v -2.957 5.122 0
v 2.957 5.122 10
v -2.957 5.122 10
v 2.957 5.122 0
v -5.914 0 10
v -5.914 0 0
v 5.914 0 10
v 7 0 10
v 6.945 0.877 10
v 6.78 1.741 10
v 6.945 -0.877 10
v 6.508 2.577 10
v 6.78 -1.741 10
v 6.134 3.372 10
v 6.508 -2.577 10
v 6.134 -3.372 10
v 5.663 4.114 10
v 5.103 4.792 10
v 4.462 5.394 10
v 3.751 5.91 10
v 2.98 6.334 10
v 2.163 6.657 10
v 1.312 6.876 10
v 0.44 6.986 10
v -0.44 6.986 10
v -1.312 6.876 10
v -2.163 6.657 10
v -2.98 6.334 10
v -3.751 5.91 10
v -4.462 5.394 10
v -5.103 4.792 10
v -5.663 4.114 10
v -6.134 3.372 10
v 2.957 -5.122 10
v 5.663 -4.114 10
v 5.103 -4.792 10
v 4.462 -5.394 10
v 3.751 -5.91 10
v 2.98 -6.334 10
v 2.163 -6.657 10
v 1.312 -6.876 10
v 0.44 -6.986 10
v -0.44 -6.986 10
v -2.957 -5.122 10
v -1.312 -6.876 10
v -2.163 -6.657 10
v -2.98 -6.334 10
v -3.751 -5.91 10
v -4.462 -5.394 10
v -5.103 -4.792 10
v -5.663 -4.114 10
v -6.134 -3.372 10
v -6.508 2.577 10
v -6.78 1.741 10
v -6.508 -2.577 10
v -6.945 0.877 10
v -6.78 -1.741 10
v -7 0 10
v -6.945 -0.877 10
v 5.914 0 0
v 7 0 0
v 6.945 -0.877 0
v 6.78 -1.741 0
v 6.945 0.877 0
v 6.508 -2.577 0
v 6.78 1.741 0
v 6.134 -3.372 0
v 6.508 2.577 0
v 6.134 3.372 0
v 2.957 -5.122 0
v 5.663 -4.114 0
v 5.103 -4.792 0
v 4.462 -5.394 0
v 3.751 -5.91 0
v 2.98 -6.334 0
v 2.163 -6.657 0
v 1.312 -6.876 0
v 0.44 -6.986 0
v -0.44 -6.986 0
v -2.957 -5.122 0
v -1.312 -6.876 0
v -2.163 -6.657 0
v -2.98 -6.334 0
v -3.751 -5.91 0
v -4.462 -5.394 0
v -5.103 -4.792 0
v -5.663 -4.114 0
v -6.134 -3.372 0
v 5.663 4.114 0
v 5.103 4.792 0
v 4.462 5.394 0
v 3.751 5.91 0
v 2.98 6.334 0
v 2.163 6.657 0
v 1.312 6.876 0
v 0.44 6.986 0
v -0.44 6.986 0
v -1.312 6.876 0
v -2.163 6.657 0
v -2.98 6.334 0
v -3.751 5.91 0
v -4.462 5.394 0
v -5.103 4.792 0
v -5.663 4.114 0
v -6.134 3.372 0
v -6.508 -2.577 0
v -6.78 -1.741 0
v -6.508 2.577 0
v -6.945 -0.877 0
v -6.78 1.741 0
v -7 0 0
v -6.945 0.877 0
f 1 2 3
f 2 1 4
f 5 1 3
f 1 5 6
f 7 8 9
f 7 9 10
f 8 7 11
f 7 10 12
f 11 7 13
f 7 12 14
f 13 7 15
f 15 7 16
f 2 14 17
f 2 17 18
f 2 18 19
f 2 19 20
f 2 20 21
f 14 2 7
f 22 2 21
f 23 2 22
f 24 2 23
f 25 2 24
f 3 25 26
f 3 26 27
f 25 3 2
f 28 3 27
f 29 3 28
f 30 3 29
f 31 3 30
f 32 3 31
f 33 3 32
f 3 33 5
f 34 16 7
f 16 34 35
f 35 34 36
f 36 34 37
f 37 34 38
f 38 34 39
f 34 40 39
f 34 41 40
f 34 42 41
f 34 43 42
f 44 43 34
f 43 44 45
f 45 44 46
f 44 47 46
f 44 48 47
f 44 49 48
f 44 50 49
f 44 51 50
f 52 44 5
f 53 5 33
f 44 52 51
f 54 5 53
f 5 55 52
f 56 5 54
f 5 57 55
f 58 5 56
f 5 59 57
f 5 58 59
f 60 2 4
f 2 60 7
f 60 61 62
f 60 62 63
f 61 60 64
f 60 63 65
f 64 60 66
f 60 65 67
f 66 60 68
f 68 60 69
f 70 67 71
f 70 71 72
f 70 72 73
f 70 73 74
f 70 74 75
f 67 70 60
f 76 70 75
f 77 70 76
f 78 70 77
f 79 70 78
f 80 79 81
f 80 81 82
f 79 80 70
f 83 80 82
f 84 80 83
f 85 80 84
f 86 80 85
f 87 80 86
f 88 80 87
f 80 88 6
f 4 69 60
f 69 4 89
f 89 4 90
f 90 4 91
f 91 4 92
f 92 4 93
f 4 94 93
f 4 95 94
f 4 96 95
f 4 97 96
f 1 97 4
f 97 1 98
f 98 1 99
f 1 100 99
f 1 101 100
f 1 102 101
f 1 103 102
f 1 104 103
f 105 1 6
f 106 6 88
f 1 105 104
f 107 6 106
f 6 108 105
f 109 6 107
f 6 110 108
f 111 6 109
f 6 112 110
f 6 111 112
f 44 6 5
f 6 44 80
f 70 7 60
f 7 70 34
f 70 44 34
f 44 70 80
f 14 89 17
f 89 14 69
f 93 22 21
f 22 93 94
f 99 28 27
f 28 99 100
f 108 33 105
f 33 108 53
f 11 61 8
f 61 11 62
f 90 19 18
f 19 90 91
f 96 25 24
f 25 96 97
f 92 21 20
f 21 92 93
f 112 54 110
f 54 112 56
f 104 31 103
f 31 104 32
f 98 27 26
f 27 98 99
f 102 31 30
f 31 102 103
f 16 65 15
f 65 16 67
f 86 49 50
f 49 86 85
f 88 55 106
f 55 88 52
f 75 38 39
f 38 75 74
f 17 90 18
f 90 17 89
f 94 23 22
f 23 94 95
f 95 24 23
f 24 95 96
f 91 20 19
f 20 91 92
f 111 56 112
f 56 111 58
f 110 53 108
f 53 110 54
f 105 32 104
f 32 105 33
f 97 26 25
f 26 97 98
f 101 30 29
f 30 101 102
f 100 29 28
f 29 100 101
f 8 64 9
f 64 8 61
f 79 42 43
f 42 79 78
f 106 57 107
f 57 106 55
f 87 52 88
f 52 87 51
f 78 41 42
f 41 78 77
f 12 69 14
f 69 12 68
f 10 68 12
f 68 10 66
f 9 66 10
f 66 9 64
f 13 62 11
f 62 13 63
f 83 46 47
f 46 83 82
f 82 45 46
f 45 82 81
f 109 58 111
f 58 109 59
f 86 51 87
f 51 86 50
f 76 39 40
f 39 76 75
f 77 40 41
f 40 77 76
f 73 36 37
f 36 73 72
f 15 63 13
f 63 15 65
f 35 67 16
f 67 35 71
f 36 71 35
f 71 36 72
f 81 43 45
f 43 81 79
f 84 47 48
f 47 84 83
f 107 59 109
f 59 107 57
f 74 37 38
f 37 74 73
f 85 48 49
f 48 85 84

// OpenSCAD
$fn = 50;


difference() {
	union() {
		cylinder(h = 10, r = 7.0000000000);
	}
	union() {
		translate(v = [0, 0, 0]) {
			rotate(a = [0, 0, 0]) {
				difference() {
					union() {
						#linear_extrude(height = 10) {
							polygon(points = [[5.9142500000, 0.0000000000], [2.9571250000, 5.1218907443], [-2.9571250000, 5.1218907443], [-5.9142500000, 0.0000000000], [-2.9571250000, -5.1218907443], [2.9571250000, -5.1218907443]]);
						}
					}
					union();
				}
			}
		}
		translate(v = [0, 0, -100]) {
			cylinder(h = 200, r = 3.2500000000);
		}
		translate(v = [0, 0, -100]) {
			cylinder(h = 200, r = 1.8000000000);
		}
	}
}
